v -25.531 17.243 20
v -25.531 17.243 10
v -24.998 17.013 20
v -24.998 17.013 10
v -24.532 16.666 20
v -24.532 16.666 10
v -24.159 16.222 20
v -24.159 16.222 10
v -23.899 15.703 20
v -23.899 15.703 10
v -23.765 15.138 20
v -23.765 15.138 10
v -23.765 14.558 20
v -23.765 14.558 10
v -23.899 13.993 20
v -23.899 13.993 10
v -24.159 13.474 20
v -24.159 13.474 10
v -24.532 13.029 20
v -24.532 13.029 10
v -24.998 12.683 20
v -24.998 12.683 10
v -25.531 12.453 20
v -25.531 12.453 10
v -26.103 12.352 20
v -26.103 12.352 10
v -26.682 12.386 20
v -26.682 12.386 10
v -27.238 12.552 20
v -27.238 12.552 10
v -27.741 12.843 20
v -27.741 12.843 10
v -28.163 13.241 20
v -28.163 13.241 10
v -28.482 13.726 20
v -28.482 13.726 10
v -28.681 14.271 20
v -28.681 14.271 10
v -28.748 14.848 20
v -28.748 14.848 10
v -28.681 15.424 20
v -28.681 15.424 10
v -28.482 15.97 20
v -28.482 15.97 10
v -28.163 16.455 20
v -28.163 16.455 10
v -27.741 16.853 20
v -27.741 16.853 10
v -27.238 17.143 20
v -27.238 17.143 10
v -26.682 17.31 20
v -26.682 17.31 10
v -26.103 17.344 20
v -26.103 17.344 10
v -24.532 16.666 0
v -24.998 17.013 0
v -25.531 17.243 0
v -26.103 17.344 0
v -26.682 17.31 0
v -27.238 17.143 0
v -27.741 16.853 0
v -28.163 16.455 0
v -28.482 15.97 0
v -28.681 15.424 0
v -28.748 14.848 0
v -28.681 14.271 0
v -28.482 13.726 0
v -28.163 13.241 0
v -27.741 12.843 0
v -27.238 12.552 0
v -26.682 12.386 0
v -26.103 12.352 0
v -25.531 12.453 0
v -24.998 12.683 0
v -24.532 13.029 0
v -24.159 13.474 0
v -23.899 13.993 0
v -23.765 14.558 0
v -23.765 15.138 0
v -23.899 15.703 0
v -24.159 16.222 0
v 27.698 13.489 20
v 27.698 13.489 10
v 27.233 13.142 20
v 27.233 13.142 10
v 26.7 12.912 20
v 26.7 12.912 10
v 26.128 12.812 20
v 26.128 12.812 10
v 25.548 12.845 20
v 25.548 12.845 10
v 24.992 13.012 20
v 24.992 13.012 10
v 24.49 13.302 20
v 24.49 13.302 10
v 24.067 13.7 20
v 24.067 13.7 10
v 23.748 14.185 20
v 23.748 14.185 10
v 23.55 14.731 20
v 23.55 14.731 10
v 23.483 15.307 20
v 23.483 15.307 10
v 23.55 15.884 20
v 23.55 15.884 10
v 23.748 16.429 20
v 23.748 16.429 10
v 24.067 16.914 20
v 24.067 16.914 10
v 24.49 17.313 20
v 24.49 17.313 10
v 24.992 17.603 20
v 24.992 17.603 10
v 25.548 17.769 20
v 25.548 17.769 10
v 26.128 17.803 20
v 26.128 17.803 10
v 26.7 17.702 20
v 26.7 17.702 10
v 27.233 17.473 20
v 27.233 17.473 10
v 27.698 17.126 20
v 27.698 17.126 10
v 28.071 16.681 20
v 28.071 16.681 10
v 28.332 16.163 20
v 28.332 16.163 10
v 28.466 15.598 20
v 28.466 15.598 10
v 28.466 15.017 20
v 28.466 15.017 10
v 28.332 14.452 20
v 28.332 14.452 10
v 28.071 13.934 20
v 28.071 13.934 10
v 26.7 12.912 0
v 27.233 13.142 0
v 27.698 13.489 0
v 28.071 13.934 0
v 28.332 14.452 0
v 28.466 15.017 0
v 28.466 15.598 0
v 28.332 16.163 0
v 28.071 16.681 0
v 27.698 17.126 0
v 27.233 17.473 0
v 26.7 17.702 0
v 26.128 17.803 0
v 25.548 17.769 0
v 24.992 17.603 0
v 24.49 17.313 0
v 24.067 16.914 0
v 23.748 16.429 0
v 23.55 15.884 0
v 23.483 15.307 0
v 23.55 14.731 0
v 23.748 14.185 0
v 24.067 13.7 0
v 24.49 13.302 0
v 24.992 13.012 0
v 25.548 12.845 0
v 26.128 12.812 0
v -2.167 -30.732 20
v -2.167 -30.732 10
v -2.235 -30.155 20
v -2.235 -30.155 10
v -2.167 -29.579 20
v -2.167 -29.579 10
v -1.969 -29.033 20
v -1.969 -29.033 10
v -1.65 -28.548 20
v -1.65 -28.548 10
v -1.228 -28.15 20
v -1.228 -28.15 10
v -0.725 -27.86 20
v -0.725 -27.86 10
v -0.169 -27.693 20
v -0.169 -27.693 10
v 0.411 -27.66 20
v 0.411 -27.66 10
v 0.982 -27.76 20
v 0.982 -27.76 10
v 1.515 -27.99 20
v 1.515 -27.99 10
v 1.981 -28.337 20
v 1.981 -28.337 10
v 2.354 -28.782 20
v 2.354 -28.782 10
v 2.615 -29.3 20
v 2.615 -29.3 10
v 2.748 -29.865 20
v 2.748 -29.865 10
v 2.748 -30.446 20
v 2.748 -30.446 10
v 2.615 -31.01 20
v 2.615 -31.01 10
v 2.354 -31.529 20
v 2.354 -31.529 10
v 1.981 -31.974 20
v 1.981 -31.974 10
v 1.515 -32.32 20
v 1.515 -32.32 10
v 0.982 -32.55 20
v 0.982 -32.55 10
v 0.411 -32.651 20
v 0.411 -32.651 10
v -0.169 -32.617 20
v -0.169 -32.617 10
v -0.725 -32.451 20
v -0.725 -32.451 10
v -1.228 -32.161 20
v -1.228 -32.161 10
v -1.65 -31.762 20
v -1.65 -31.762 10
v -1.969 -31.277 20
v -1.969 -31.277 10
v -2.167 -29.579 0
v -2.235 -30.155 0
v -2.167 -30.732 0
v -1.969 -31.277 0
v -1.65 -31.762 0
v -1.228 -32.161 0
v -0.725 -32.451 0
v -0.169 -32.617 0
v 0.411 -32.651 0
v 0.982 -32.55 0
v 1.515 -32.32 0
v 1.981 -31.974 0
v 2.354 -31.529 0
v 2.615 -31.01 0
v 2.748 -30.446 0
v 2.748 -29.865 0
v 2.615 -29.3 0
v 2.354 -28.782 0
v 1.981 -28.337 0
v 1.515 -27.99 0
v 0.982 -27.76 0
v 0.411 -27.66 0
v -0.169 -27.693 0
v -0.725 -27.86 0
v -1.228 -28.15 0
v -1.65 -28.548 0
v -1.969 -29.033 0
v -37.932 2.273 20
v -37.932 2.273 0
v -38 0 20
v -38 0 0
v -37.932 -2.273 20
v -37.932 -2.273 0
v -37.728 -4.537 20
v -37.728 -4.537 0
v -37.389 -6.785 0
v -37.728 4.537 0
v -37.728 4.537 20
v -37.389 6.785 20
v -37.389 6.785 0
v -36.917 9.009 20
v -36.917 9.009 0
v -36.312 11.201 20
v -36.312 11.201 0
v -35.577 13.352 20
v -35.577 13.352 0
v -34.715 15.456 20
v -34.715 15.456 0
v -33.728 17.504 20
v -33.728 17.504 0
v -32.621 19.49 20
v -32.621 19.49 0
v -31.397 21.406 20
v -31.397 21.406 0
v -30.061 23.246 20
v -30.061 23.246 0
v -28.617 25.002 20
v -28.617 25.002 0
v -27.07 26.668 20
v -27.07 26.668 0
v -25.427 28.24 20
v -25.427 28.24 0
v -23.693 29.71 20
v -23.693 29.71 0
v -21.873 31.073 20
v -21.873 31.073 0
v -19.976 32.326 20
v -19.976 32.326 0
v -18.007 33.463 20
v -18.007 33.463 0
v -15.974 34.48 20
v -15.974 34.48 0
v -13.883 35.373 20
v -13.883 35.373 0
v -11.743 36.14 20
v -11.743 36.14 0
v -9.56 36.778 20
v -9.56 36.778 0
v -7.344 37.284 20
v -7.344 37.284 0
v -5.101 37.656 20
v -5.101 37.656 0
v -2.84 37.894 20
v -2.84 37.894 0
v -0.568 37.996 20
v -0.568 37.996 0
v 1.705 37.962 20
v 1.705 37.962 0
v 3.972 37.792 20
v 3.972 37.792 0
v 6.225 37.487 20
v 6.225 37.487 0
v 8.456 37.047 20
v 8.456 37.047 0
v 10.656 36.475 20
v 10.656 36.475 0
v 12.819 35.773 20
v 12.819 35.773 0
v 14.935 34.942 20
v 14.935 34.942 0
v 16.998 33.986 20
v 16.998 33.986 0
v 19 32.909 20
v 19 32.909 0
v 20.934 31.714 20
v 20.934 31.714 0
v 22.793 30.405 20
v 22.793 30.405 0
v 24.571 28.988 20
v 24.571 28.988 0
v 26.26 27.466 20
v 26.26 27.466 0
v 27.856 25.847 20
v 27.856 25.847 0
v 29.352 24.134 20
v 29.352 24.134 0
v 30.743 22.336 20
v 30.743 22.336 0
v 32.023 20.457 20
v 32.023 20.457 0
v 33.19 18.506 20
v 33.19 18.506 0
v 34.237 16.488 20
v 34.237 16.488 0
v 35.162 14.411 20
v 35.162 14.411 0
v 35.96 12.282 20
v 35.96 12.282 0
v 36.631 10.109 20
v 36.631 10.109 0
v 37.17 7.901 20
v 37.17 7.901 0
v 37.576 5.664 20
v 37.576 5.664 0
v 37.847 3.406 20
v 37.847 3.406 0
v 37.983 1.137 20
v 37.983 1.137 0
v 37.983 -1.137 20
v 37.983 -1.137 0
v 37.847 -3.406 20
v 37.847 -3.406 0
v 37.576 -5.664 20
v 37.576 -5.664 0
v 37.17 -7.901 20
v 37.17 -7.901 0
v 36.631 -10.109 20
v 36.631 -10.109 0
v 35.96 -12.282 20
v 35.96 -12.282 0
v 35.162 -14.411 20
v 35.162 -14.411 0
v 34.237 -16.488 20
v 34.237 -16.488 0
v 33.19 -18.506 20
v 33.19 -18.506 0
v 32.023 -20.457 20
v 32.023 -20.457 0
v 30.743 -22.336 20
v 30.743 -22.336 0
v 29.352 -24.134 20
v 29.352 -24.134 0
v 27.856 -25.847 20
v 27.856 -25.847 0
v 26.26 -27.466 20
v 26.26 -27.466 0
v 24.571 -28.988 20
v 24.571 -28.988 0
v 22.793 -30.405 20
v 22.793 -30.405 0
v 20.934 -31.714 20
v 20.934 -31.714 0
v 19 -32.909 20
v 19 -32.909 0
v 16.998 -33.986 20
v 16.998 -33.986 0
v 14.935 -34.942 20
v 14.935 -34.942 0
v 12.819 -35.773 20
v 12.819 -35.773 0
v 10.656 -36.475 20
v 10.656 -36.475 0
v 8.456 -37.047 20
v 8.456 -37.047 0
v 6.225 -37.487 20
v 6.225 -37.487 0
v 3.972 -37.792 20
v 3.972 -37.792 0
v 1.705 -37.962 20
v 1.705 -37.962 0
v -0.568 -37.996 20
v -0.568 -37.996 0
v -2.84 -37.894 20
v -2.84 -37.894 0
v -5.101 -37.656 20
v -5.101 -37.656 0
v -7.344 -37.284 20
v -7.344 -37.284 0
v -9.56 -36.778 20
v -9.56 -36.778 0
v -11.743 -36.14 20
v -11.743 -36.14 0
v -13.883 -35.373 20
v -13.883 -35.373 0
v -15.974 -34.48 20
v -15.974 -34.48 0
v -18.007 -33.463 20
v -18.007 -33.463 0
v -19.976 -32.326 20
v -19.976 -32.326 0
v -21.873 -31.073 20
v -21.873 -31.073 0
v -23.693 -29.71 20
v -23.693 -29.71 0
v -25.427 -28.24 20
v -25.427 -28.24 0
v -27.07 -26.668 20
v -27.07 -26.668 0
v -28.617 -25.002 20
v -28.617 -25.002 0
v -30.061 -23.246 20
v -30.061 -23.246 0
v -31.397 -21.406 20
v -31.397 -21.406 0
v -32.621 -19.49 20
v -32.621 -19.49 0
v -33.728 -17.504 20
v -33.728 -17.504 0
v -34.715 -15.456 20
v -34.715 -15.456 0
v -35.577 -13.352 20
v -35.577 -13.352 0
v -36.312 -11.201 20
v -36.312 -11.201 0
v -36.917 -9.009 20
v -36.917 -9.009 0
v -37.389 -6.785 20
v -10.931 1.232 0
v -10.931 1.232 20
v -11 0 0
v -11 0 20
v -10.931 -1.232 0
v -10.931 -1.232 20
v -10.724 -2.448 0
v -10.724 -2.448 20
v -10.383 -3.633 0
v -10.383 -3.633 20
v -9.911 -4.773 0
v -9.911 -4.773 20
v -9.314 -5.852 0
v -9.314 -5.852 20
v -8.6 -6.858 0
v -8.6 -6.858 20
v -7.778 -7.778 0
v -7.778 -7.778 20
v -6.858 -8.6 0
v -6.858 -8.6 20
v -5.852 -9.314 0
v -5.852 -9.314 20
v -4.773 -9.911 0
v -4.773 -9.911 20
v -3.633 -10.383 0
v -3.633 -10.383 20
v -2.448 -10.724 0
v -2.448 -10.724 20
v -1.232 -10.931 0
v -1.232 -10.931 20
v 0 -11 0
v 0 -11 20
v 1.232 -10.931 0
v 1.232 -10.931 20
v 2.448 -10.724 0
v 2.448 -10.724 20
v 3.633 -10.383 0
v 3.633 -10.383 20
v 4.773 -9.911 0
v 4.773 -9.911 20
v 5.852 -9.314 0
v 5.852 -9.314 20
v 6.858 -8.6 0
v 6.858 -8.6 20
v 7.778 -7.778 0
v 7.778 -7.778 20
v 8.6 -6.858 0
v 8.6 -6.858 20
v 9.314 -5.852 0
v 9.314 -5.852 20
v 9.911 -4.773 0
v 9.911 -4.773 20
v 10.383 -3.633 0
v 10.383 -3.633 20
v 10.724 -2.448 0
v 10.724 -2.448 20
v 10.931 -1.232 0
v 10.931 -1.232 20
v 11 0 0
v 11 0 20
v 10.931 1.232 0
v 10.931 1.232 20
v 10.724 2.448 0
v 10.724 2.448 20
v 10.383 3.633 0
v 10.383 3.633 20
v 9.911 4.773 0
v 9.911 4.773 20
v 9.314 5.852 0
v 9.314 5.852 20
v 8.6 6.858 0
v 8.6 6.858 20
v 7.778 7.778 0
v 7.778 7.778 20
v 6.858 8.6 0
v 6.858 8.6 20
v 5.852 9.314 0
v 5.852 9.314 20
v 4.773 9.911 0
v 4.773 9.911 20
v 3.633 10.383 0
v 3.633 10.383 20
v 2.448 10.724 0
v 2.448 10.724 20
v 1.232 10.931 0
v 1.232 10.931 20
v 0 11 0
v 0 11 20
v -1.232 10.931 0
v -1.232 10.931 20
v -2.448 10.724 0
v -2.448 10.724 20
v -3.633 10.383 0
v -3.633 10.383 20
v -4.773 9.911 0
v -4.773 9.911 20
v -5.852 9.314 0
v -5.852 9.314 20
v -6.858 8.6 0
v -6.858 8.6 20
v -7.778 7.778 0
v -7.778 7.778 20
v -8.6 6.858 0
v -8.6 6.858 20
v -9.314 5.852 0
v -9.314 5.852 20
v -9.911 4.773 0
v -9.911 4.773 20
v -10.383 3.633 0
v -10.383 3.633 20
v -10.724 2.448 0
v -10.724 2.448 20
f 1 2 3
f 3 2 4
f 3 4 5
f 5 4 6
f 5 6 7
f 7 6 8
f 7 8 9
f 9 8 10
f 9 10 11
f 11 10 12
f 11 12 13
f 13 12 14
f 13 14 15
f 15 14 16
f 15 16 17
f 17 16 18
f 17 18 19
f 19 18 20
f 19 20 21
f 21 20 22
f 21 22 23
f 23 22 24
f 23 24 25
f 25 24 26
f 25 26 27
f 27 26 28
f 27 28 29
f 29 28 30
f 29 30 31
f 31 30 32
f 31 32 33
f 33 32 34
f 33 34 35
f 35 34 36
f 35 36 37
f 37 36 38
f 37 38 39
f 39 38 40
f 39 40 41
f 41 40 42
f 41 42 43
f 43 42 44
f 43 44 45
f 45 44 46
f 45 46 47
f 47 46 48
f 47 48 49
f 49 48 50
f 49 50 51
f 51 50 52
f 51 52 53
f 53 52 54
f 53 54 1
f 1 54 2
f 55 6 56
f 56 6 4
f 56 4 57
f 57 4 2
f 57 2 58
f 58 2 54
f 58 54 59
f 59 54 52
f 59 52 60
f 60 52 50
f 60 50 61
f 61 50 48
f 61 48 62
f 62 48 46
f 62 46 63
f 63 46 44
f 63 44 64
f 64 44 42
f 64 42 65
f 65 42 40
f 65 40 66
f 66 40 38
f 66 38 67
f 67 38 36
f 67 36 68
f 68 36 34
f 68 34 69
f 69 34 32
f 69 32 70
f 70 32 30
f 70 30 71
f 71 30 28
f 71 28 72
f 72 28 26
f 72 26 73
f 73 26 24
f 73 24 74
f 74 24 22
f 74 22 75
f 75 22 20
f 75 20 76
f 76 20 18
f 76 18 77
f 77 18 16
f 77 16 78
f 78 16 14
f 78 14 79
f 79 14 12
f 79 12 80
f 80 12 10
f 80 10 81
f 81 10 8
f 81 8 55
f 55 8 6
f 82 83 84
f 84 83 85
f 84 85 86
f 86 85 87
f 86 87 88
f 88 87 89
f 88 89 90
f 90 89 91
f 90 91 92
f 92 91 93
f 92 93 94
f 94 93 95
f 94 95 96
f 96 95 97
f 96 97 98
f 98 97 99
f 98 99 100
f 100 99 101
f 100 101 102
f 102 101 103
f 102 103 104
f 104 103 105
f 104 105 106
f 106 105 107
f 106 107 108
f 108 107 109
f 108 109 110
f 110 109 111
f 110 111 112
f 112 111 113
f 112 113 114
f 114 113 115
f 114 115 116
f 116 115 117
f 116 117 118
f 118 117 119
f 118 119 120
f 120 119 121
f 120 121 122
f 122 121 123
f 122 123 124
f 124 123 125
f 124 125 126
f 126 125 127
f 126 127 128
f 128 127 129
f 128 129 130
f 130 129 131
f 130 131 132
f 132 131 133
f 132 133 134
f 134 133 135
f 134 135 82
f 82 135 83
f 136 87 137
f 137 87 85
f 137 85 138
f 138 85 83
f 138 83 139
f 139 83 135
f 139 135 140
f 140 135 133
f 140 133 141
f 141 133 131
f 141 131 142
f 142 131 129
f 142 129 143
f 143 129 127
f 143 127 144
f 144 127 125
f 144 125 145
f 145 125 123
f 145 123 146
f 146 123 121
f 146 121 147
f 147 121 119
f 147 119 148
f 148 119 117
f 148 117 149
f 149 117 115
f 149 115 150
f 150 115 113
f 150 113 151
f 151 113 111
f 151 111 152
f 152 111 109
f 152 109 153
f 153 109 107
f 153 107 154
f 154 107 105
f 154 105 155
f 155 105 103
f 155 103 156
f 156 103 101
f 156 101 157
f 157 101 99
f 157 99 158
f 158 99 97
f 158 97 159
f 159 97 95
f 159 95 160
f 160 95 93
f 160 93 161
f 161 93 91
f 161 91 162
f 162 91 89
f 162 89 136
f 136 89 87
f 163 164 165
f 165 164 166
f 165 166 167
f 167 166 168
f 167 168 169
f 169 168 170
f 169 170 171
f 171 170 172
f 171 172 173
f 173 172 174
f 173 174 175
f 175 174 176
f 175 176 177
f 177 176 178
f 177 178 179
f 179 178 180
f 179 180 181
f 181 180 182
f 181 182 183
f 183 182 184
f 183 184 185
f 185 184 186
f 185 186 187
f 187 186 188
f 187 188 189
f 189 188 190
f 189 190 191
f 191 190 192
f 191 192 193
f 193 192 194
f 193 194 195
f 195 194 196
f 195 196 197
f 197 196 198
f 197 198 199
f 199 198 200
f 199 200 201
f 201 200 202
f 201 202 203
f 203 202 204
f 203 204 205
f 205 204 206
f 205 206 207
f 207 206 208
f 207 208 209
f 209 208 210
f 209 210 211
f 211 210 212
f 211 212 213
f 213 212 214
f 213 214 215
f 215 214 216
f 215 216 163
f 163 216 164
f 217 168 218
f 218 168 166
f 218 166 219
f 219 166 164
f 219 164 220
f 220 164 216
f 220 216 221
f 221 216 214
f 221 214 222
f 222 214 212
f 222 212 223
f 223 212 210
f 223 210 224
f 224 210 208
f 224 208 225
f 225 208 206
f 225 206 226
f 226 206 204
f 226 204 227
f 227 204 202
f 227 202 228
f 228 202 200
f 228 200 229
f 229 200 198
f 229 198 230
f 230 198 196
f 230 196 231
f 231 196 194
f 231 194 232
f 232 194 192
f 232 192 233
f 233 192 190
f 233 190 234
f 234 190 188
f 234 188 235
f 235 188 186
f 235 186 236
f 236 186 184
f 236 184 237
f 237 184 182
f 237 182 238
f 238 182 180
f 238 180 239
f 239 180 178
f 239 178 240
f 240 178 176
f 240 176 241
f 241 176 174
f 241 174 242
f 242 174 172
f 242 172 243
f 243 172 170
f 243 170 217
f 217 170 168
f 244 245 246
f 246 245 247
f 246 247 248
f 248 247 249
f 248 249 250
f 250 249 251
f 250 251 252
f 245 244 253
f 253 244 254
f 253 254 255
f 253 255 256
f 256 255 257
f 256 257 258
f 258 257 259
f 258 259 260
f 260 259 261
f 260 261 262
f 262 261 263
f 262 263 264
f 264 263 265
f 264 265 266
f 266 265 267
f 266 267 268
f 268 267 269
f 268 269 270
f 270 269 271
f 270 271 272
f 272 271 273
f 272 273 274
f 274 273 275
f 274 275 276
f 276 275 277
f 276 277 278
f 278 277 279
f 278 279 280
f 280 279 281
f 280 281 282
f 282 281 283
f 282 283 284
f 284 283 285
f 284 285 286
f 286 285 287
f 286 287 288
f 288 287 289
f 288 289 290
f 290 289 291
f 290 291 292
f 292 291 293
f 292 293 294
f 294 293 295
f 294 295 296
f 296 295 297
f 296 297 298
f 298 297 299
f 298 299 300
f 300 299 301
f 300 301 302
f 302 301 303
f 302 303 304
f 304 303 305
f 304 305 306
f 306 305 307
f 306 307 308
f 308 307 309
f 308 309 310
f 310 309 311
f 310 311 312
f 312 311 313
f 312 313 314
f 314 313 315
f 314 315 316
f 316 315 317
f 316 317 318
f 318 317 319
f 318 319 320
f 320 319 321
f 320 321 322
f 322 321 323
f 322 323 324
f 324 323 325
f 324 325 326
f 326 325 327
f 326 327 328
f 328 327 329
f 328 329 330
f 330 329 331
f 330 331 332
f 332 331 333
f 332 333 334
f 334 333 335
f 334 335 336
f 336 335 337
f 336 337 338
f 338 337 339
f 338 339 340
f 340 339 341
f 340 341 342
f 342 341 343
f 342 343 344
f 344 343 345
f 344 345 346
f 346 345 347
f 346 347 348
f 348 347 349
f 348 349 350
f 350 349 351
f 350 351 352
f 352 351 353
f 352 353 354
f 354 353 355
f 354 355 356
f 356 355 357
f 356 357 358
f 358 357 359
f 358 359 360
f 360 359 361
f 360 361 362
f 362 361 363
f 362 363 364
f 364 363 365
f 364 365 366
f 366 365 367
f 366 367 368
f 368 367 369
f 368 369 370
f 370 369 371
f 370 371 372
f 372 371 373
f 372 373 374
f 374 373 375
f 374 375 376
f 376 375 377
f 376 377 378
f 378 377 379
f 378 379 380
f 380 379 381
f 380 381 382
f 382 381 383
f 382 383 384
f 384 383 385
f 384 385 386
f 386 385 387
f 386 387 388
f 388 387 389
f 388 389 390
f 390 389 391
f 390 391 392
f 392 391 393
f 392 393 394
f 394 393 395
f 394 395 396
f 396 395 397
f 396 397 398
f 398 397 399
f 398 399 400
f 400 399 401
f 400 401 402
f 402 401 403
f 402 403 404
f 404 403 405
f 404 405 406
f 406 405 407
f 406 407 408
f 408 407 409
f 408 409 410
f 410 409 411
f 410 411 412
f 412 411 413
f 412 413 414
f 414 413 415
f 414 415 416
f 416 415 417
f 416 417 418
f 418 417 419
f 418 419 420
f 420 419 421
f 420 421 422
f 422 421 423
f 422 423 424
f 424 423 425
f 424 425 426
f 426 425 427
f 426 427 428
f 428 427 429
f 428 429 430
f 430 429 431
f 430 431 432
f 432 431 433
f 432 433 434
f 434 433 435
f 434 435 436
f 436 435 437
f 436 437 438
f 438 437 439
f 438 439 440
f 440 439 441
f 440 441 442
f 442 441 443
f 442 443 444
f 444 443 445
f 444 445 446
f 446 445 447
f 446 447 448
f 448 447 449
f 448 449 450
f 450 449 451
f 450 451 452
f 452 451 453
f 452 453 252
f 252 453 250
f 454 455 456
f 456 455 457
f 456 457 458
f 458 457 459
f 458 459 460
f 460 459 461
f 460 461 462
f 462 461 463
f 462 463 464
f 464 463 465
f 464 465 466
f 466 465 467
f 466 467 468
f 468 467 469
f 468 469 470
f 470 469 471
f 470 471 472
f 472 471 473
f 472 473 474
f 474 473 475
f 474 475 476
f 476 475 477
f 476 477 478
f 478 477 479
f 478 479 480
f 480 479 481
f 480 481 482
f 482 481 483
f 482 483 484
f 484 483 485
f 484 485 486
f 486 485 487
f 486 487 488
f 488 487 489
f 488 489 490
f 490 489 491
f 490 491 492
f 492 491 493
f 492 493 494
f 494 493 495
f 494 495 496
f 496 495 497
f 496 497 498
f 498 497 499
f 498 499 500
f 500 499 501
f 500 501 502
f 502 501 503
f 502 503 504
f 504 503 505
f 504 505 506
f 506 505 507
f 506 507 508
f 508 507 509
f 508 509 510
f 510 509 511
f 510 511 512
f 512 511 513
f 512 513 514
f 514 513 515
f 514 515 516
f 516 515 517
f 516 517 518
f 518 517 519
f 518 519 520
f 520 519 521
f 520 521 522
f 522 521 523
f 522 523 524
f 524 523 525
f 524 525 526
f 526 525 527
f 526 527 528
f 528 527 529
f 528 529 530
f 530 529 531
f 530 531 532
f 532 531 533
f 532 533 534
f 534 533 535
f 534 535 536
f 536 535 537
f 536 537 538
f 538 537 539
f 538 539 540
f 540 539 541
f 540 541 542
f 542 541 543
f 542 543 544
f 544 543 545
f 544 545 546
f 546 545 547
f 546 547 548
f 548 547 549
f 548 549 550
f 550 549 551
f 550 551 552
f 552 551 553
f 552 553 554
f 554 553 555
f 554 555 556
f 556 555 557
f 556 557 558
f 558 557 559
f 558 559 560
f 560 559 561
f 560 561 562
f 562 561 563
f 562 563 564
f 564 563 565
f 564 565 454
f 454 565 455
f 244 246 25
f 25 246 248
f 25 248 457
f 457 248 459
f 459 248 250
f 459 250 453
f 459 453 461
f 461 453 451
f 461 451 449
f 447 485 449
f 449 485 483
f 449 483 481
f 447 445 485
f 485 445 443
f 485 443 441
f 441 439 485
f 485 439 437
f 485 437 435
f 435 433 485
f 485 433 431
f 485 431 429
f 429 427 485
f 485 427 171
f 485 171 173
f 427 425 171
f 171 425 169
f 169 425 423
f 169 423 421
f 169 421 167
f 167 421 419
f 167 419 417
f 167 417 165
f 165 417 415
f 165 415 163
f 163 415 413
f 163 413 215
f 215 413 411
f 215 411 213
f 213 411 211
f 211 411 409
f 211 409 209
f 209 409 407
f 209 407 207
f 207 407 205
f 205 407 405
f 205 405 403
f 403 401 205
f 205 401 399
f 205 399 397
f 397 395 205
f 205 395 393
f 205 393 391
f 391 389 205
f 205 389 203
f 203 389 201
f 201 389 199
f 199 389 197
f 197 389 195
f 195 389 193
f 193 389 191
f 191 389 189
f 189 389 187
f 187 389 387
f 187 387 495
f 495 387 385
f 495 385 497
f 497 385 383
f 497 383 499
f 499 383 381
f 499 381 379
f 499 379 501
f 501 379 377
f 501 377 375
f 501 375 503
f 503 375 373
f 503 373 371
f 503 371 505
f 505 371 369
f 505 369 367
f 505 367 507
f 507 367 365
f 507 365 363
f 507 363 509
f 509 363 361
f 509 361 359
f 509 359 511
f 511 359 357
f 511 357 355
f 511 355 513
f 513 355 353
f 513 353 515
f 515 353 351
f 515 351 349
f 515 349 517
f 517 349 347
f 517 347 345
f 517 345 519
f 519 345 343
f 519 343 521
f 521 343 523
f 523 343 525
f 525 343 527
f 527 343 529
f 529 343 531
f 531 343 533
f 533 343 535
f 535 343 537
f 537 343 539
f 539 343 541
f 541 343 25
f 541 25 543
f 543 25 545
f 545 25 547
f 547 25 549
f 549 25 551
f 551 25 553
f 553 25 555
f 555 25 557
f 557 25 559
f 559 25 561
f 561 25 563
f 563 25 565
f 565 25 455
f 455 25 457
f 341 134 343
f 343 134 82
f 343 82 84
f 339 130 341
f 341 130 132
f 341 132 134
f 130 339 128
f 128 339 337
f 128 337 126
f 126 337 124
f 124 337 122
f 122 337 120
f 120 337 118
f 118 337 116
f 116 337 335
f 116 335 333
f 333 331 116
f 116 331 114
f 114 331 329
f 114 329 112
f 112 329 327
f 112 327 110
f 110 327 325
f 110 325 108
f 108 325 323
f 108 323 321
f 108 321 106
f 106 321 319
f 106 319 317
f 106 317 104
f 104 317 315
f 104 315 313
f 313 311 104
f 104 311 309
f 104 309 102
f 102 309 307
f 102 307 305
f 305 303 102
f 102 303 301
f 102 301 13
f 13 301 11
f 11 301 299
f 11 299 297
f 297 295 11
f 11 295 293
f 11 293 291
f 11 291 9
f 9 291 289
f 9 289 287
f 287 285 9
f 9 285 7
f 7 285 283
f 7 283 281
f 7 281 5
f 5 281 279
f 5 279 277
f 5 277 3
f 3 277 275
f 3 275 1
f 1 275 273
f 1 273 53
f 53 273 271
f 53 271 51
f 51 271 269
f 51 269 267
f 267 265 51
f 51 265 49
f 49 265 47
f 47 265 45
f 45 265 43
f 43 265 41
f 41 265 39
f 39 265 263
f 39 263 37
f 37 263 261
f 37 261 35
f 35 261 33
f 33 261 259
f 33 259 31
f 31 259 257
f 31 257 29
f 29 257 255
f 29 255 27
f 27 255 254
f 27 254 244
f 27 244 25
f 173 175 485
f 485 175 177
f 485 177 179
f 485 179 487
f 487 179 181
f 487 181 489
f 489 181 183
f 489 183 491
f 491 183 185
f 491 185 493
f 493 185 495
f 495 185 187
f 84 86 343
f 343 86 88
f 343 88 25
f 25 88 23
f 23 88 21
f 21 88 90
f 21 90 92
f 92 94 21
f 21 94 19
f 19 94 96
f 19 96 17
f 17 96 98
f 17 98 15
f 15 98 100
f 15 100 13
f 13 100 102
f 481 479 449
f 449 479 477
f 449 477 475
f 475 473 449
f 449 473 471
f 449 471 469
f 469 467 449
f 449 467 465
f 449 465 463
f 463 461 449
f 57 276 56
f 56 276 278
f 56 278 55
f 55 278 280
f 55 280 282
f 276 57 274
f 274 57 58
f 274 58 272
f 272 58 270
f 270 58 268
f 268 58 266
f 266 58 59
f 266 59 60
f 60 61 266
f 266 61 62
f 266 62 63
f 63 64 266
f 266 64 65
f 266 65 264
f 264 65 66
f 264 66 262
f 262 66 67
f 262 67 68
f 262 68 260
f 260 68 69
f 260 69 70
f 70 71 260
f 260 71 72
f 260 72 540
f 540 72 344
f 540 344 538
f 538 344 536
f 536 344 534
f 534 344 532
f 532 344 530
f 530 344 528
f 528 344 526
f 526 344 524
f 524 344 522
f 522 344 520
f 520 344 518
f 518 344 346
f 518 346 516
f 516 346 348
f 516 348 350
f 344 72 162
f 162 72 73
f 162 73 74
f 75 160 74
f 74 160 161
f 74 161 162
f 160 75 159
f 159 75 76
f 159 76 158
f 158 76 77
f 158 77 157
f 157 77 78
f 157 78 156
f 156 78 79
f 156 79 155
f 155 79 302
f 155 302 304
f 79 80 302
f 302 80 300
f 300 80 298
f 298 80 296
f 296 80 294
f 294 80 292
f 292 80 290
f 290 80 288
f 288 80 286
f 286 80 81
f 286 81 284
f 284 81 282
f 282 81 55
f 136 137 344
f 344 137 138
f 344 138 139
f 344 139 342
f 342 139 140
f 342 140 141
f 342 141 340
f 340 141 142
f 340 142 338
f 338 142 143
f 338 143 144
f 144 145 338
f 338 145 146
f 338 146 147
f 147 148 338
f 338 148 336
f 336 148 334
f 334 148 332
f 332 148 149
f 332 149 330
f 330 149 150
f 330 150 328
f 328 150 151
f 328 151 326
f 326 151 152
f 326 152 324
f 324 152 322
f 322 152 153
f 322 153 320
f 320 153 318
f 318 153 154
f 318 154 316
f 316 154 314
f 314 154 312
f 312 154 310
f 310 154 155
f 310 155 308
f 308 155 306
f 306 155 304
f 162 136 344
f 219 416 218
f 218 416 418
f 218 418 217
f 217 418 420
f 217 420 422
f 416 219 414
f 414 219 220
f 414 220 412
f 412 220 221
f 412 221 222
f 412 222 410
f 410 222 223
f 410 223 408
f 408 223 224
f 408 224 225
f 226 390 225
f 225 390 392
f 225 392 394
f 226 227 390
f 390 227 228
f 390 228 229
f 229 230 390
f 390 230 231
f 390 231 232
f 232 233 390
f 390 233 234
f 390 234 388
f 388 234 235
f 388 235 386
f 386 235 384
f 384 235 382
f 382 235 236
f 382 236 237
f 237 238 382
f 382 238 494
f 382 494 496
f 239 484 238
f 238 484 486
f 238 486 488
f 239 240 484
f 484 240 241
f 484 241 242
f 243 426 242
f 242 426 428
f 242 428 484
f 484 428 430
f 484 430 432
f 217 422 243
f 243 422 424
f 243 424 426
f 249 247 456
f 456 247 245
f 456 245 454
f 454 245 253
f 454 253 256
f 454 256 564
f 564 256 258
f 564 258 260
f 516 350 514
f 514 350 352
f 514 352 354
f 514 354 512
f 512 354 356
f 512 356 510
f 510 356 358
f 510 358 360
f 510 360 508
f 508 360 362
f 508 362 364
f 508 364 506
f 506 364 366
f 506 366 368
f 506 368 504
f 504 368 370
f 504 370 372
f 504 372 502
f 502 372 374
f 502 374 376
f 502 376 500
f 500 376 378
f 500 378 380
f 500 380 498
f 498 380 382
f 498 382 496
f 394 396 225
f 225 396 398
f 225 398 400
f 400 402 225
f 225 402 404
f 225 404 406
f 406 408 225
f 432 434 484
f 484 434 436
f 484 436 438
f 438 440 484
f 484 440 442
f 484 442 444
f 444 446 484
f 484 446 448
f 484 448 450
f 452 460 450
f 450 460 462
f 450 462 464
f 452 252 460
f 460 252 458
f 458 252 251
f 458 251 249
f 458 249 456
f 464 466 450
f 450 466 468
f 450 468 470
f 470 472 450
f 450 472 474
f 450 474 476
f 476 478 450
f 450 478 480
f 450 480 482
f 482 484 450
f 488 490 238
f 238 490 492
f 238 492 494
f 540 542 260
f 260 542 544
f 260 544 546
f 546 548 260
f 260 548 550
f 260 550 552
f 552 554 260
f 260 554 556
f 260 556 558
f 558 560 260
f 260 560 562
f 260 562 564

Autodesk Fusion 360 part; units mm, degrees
sketch "Sketch1" plane through (0, 0, 0) normal (0, 0, 1) x (1, 0, 0)
  circle A0 centre (0, 0) radius 11
  circle A1 centre (0, 0) radius 22.5
  circle A2 centre (0, 0) radius 38
  dimension "d1" = 45
  dimension "d2" = 22
  dimension "d3" = 76
extrude "Extrude1" add sketch "Sketch1" along normal blind 20 contours A1
sketch "Sketch2" plane through (0, 0, 0) normal (0, 0, 1) x (1, 0, 0)
  circle A0 centre (0.2654, -30.1553) radius 2.5
  dimension "d8" = 5
extrude "Extrude4" add sketch "Sketch1" along normal blind 2 contours A1 | A2
extrude "Extrude5" cut sketch "Sketch2" along normal blind 6.312
pattern_circular "C-Pattern2" count 3 over 360 about axis through (0, 0, 2) along (0, 0, 1) of "Extrude5"
extrude "돌출6" add 1 faces at (-20.8034, 21.3677, 2) along direction (0, 0, 1) blind 20
extrude "돌출7" cut 1 faces at (-20.8034, 21.3677, 22) along direction (0, 0, -1) blind 3
extrude "돌출8" add 1 faces at (-20.8034, 21.3677, 19) along direction (0, 0, 1) blind 1
